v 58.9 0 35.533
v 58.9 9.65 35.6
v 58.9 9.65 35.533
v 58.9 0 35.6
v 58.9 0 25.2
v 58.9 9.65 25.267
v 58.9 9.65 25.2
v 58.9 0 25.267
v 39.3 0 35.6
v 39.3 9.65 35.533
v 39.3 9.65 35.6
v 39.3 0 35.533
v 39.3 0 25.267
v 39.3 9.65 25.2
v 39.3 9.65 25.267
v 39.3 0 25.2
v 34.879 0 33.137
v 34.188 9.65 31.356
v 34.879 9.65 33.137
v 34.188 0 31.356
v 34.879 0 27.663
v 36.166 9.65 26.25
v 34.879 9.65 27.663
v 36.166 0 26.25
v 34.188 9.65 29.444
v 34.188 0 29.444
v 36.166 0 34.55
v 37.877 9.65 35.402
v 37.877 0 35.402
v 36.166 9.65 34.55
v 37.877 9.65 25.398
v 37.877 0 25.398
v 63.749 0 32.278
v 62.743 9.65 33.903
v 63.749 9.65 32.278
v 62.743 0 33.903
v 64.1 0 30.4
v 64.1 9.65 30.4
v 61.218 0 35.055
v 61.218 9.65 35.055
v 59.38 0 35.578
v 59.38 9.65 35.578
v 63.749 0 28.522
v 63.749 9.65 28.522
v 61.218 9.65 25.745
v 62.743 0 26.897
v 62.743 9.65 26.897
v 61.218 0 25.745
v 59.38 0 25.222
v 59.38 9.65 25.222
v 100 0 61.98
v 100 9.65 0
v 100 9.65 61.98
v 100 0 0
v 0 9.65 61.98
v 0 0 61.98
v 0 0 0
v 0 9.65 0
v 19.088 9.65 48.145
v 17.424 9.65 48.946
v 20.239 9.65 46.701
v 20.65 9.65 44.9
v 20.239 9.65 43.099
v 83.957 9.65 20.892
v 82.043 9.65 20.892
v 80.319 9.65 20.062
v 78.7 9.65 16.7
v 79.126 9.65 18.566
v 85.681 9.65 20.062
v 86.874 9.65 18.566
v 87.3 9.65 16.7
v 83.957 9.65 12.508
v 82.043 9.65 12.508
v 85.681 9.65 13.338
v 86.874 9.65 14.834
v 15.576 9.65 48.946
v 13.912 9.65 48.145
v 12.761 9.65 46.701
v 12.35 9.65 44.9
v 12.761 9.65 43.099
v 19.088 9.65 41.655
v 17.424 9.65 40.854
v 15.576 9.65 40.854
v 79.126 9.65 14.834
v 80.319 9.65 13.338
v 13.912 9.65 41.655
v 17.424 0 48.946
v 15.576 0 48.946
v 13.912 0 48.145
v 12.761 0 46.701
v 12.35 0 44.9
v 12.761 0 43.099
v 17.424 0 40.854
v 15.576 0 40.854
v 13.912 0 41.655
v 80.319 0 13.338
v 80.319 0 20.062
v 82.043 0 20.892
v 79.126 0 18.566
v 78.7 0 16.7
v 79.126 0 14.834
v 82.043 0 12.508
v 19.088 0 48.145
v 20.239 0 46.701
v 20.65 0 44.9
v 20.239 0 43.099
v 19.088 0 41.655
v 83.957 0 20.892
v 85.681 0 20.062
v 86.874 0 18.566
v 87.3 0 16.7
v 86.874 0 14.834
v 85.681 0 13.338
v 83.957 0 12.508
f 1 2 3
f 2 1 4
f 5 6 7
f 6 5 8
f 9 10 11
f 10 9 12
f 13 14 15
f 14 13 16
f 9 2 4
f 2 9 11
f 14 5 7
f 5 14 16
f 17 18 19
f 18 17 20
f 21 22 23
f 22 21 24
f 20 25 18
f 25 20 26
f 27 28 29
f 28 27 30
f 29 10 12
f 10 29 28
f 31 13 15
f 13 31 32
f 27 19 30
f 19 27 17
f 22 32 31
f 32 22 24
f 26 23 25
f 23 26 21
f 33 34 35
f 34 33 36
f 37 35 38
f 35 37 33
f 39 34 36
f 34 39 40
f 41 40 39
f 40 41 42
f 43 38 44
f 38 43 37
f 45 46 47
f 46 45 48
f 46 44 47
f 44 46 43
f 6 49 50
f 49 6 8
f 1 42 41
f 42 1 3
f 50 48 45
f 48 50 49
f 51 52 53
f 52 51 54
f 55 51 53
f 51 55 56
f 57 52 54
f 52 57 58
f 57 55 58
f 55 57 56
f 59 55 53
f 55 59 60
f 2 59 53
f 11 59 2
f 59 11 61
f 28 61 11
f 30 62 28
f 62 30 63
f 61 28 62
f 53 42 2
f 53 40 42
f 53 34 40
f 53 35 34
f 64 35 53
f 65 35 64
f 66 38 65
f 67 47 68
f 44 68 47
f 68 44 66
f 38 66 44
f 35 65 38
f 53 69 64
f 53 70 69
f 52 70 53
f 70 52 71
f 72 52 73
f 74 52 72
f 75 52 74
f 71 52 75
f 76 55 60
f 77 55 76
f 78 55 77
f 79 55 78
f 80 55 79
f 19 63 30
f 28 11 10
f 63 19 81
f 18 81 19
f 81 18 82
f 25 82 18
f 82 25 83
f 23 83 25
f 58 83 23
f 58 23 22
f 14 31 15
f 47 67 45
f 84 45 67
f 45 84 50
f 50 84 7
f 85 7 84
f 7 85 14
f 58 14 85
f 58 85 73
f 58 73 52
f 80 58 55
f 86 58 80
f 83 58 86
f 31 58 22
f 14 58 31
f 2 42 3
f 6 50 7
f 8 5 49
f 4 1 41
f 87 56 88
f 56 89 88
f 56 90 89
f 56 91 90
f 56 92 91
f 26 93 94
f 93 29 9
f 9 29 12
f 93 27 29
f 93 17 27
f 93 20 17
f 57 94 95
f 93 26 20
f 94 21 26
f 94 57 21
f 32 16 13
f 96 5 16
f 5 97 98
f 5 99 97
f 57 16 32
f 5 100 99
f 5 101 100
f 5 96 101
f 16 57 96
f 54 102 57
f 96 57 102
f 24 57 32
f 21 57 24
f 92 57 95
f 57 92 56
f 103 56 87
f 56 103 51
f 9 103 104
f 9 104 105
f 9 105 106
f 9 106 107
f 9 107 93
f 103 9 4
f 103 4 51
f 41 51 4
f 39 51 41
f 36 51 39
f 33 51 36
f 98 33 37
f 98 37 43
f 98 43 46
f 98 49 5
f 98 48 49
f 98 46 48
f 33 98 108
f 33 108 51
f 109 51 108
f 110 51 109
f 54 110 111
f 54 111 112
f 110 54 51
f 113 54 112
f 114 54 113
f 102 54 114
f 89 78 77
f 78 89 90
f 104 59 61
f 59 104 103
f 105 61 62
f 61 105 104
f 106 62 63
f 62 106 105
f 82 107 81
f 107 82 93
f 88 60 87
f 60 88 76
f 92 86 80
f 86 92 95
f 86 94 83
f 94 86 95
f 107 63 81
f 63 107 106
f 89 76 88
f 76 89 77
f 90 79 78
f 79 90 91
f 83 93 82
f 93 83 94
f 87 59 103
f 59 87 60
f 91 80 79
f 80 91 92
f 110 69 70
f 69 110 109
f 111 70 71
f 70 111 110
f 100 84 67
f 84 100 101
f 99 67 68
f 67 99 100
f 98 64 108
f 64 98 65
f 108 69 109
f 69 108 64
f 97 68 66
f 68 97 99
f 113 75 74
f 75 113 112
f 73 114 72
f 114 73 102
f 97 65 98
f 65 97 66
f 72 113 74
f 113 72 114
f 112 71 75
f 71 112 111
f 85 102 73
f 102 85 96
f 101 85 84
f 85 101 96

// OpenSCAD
/* doodle-meta {"version":1,"parameters":{"width":{"label":"Overall width","description":"Changes the body width","unit":"mm","feature":"body_width"},"height":{"label":"Overall height","description":"Changes the body height","unit":"mm","feature":"body_height"},"thickness":{"label":"Plate thickness","description":"Changes the plate thickness (Y-axis)","unit":"mm","feature":"body_thickness"},"hole_left_d":{"label":"Left hole diameter","description":"Diameter of the top-left hole","unit":"mm","feature":"hole_left"},"hole_right_d":{"label":"Right hole diameter","description":"Diameter of the bottom-right hole","unit":"mm","feature":"hole_right"},"slot_length":{"label":"Slot length","description":"Length of the central slot","unit":"mm","feature":"center_slot"},"slot_width":{"label":"Slot width","description":"Width of the central slot","unit":"mm","feature":"center_slot"}},"features":{"body_width":{"kind":"dimension","axis":"x","label":"Overall width"},"body_height":{"kind":"dimension","axis":"z","label":"Overall height"},"body_thickness":{"kind":"dimension","axis":"y","label":"Plate thickness"},"hole_left":{"kind":"region","label":"Left hole","min":[{"parameter":"hole_left_x","scale":1,"offset":-4.15},{"parameter":"thickness","scale":0,"offset":0},{"parameter":"hole_left_z","scale":1,"offset":-4.15}],"max":[{"parameter":"hole_left_x","scale":1,"offset":4.15},{"parameter":"thickness","scale":1,"offset":0},{"parameter":"hole_left_z","scale":1,"offset":4.15}]},"hole_right":{"kind":"region","label":"Right hole","min":[{"parameter":"hole_right_x","scale":1,"offset":-4.3},{"parameter":"thickness","scale":0,"offset":0},{"parameter":"hole_right_z","scale":1,"offset":-4.3}],"max":[{"parameter":"hole_right_x","scale":1,"offset":4.3},{"parameter":"thickness","scale":1,"offset":0},{"parameter":"hole_right_z","scale":1,"offset":4.3}]},"center_slot":{"kind":"region","label":"Center slot","min":[{"parameter":"slot_center_x","scale":1,"offset":-15},{"parameter":"thickness","scale":0,"offset":0},{"parameter":"slot_center_z","scale":1,"offset":-5.2}],"max":[{"parameter":"slot_center_x","scale":1,"offset":15},{"parameter":"thickness","scale":1,"offset":0},{"parameter":"slot_center_z","scale":1,"offset":5.2}]}}} */

// Top-level parameters (user-editable)
width = 100.0;
height = 61.98;
thickness = 9.65;

// Feature positions (derived from measured view geometry, not user-editable)
hole_left_x = 16.5;
hole_left_z = 44.9;
hole_left_d = 8.3;

hole_right_x = 83.0;
hole_right_z = 16.7;
hole_right_d = 8.6;

slot_center_x = 49.1;
slot_center_z = 30.4;
slot_length = 30.0;
slot_width = 10.4;

// Implementation constants
eps = 0.01;

// Main design
difference() {
    // Positive body: rectangular plate
    cube([width, thickness, height]);
    
    // Subtract left hole (through along Y)
    translate([hole_left_x, thickness/2, hole_left_z])
        rotate([90, 0, 0])
            cylinder(d=hole_left_d, h=thickness+2*eps, center=true);
    
    // Subtract right hole (through along Y)
    translate([hole_right_x, thickness/2, hole_right_z])
        rotate([90, 0, 0])
            cylinder(d=hole_right_d, h=thickness+2*eps, center=true);
    
    // Subtract center slot (through along Y)
    translate([slot_center_x, thickness/2, slot_center_z])
        rotate([90, 0, 0])
            slot_cutter(slot_length, slot_width, thickness+2*eps);
}

// Module for slot cutter (stadium shape)
module slot_cutter(length, width, height) {
    // Slot is oriented along X in the cutter's local frame (after rotation)
    // The slot's long axis is along X, short axis along Z (in front view)
    // After rotate([90,0,0]), the cylinder axis is along Y (through the plate)
    // We need to create a stadium shape in the XZ plane of the cutter's local frame
    // which becomes XY after rotation... wait, let's think carefully.
    
    // The cutter is rotated [90,0,0] so its local Z becomes global Y.
    // In the cutter's local frame (before rotation), we want the slot profile in XY.
    // The slot's long axis should be along global X, which is local X after rotation.
    // The slot's short axis should be along global Z, which is local Y after rotation.
    
    // So in the cutter's local frame, we create a stadium in XY:
    // - Long axis along local X (length)
    // - Short axis along local Y (width)
    
    // Stadium = rectangle + two semicircles at ends
    // Rectangle part: from -length/2 to length/2 in X, -width/2 to width/2 in Y
    // But we need to account for the semicircular ends properly.
    
    // Actually, for a slot of total length L and width W:
    // The straight part has length L - W, and two semicircles of radius W/2 at each end.
    // Total length = (L - W) + 2*(W/2) = L. Correct.
    
    // In local frame (XY plane, extruded along Z):
    // Rectangle: x from -(L-W)/2 to (L-W)/2, y from -W/2 to W/2
    // Left semicircle: center at (-(L-W)/2, 0), radius W/2
    // Right semicircle: center at ((L-W)/2, 0), radius W/2
    
    straight_len = length - width;
    r = width / 2;
    
    // Rectangle part
    translate([0, 0, 0])
        cube([straight_len, width, height], center=true);
    
    // Left semicircle (full cylinder, will be clipped by union with rectangle)
    translate([-(straight_len/2), 0, 0])
        cylinder(r=r, h=height, center=true);
    
    // Right semicircle
    translate([straight_len/2, 0, 0])
        cylinder(r=r, h=height, center=true);
}
